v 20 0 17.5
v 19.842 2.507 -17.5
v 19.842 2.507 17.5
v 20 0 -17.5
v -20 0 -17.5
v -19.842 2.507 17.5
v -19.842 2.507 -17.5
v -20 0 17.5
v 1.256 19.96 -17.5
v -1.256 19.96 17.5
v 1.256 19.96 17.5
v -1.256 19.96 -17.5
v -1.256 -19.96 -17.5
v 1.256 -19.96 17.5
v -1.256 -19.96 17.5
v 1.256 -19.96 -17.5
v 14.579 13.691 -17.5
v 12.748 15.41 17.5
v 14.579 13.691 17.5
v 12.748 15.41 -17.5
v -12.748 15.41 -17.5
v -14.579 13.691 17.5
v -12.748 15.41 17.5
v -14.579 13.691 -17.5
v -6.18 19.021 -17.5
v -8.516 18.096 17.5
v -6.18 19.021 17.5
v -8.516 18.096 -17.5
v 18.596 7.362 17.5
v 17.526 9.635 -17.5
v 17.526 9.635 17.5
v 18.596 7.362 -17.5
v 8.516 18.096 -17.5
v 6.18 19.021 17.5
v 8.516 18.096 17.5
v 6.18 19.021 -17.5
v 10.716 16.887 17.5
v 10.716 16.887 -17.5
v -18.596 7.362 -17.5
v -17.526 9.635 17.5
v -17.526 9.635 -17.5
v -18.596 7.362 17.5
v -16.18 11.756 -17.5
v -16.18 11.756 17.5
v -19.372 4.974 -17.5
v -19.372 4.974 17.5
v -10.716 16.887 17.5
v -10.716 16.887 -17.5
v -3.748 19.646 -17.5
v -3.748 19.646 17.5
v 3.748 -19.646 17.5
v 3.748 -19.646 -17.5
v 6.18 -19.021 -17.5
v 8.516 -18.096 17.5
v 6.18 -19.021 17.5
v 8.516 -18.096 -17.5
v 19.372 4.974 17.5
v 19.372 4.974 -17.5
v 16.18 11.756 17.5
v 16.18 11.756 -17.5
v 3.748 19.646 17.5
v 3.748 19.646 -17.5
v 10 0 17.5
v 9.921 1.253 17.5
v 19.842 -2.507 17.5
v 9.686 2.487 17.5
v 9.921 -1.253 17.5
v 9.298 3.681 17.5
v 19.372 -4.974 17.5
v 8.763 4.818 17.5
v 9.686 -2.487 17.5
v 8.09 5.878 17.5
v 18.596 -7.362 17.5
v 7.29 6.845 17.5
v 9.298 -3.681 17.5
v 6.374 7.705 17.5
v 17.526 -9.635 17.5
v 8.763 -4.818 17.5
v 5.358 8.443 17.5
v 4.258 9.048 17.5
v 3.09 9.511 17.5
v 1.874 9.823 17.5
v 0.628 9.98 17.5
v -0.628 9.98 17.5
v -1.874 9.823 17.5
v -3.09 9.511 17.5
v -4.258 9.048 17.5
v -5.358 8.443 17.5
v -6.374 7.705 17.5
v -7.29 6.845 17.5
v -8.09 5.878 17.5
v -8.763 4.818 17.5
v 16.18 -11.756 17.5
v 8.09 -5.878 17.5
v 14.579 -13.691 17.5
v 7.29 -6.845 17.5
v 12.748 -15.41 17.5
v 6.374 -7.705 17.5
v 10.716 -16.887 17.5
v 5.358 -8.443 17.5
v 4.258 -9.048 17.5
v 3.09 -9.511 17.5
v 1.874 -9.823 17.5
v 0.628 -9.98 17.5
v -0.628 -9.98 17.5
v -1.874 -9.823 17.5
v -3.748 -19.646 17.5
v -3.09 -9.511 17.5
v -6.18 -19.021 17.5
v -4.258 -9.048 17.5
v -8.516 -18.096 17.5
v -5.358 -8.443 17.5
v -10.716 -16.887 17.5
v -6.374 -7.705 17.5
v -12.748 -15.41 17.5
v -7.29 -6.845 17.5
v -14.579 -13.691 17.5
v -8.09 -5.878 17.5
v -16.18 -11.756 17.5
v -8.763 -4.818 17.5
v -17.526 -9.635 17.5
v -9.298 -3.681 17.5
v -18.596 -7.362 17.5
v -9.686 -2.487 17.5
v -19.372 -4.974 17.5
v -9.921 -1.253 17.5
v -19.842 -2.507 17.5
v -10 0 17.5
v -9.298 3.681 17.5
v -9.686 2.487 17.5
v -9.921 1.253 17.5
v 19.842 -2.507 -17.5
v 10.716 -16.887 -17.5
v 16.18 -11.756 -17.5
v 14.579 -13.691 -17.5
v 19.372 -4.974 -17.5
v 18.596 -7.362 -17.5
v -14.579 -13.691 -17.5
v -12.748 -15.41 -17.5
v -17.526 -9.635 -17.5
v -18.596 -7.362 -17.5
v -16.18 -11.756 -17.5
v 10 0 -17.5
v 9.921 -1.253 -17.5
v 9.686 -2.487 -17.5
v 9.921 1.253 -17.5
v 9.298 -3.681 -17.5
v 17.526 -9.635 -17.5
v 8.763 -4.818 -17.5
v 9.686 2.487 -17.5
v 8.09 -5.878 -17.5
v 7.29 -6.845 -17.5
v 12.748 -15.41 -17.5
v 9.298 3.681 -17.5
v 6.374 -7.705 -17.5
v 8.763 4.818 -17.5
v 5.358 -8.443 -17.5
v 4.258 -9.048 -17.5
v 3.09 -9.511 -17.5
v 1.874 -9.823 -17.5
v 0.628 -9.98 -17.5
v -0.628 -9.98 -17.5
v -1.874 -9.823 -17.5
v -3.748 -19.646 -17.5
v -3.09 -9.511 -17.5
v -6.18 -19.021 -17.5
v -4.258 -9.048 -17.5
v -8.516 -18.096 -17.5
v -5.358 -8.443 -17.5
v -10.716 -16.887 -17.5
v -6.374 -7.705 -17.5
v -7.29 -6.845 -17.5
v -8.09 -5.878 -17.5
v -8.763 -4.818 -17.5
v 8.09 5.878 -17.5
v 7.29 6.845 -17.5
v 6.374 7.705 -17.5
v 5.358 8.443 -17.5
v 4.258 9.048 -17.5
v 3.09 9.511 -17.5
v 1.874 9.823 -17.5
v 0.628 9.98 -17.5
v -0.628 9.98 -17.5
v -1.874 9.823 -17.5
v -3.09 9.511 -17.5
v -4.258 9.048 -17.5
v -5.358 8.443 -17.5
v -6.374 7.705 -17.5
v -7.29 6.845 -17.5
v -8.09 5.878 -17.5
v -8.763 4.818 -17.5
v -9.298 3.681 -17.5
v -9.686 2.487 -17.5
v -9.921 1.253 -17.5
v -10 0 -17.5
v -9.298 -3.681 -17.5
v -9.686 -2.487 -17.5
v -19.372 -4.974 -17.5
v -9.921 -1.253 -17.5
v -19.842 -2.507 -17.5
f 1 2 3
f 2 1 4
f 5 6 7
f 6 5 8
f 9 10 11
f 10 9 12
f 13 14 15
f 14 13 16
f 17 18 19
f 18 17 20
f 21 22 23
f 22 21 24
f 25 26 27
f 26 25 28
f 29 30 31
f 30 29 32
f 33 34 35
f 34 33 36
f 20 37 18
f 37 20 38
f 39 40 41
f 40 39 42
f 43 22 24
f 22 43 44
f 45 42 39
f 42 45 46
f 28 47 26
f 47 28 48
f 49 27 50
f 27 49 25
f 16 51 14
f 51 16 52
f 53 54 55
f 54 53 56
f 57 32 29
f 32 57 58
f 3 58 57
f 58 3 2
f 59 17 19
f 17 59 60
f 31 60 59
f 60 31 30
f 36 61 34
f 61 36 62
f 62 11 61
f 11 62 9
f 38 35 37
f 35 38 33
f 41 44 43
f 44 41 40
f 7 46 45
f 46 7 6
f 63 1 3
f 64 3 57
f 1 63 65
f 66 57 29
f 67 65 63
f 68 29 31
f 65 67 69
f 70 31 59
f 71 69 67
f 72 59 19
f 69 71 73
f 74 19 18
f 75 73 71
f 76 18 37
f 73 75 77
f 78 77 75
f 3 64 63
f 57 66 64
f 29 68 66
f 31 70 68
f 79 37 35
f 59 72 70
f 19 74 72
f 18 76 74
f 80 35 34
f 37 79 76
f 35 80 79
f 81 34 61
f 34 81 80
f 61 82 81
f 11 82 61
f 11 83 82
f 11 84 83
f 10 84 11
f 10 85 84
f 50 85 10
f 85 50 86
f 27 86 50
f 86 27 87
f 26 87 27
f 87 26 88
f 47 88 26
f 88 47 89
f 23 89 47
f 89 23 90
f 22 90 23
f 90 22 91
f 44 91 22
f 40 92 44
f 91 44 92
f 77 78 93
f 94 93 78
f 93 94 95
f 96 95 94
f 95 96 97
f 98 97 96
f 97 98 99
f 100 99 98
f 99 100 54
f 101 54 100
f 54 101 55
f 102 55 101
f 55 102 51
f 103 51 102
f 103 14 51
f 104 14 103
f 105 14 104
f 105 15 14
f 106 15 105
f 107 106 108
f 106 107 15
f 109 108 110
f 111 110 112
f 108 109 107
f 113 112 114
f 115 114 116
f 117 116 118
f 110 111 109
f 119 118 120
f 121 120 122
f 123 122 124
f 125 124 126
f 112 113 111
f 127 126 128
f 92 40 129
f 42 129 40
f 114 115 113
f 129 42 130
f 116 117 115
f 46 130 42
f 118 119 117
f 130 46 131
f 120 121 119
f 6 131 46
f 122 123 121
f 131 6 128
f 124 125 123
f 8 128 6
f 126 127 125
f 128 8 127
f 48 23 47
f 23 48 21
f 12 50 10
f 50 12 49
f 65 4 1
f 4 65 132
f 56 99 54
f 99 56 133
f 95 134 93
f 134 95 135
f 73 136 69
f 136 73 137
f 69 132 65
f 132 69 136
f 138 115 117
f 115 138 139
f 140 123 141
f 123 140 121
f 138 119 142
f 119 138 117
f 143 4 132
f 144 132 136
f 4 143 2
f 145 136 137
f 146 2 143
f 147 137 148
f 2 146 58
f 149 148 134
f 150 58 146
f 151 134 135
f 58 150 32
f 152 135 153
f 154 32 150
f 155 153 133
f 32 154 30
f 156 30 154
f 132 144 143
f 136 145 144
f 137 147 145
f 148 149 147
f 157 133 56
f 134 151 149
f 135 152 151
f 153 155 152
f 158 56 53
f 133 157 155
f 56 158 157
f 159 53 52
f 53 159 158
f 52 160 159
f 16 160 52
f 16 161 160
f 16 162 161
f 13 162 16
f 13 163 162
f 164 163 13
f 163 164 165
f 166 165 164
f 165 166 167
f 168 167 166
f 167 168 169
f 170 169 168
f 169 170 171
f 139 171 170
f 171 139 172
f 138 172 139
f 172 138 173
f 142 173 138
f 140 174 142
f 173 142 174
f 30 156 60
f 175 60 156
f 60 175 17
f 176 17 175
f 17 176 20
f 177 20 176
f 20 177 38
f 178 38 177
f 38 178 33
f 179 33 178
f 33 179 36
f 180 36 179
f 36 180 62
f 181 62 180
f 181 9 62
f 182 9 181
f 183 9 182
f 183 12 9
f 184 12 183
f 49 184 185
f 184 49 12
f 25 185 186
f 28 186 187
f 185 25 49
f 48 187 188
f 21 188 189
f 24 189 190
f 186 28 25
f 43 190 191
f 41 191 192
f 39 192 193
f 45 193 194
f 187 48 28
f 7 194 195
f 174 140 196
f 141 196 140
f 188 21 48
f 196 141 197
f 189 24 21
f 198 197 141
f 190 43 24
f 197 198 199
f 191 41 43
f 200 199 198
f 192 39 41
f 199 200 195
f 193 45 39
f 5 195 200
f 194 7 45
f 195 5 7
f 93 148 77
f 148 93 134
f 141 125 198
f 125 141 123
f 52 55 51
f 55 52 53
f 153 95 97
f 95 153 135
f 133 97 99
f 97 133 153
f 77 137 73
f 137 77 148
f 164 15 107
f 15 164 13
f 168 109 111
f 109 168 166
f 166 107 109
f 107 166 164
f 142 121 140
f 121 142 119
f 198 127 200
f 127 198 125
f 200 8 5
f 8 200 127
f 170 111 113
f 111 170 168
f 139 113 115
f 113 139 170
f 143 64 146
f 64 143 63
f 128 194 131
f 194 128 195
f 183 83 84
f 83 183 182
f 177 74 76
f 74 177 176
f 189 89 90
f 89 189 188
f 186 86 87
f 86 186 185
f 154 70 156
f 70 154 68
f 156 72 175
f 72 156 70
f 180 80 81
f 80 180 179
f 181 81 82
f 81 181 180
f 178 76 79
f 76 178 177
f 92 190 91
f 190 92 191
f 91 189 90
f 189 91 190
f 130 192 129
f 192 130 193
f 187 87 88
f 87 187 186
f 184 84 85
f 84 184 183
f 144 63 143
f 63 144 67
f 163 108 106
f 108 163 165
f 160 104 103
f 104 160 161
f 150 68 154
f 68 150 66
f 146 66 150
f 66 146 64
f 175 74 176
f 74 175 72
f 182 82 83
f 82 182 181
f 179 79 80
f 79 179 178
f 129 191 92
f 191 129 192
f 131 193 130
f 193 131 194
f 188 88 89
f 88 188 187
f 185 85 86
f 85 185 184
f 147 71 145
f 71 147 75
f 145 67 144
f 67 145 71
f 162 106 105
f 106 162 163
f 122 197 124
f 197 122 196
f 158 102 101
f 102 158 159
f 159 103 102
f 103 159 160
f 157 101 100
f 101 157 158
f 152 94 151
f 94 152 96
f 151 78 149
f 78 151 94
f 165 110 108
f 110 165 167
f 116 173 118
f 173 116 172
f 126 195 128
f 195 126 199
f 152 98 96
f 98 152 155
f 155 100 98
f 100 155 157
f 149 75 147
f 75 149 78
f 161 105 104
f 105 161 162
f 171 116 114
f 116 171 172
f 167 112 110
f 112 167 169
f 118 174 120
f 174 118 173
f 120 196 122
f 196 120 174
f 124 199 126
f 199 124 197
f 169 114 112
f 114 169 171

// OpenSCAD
$fn = 50;


difference() {
	union() {
		translate(v = [0, 0, -17.5000000000]) {
			cylinder(h = 35, r = 20.0000000000);
		}
	}
	union() {
		translate(v = [0, 0, -100.0000000000]) {
			cylinder(h = 200, r = 10);
		}
	}
}
